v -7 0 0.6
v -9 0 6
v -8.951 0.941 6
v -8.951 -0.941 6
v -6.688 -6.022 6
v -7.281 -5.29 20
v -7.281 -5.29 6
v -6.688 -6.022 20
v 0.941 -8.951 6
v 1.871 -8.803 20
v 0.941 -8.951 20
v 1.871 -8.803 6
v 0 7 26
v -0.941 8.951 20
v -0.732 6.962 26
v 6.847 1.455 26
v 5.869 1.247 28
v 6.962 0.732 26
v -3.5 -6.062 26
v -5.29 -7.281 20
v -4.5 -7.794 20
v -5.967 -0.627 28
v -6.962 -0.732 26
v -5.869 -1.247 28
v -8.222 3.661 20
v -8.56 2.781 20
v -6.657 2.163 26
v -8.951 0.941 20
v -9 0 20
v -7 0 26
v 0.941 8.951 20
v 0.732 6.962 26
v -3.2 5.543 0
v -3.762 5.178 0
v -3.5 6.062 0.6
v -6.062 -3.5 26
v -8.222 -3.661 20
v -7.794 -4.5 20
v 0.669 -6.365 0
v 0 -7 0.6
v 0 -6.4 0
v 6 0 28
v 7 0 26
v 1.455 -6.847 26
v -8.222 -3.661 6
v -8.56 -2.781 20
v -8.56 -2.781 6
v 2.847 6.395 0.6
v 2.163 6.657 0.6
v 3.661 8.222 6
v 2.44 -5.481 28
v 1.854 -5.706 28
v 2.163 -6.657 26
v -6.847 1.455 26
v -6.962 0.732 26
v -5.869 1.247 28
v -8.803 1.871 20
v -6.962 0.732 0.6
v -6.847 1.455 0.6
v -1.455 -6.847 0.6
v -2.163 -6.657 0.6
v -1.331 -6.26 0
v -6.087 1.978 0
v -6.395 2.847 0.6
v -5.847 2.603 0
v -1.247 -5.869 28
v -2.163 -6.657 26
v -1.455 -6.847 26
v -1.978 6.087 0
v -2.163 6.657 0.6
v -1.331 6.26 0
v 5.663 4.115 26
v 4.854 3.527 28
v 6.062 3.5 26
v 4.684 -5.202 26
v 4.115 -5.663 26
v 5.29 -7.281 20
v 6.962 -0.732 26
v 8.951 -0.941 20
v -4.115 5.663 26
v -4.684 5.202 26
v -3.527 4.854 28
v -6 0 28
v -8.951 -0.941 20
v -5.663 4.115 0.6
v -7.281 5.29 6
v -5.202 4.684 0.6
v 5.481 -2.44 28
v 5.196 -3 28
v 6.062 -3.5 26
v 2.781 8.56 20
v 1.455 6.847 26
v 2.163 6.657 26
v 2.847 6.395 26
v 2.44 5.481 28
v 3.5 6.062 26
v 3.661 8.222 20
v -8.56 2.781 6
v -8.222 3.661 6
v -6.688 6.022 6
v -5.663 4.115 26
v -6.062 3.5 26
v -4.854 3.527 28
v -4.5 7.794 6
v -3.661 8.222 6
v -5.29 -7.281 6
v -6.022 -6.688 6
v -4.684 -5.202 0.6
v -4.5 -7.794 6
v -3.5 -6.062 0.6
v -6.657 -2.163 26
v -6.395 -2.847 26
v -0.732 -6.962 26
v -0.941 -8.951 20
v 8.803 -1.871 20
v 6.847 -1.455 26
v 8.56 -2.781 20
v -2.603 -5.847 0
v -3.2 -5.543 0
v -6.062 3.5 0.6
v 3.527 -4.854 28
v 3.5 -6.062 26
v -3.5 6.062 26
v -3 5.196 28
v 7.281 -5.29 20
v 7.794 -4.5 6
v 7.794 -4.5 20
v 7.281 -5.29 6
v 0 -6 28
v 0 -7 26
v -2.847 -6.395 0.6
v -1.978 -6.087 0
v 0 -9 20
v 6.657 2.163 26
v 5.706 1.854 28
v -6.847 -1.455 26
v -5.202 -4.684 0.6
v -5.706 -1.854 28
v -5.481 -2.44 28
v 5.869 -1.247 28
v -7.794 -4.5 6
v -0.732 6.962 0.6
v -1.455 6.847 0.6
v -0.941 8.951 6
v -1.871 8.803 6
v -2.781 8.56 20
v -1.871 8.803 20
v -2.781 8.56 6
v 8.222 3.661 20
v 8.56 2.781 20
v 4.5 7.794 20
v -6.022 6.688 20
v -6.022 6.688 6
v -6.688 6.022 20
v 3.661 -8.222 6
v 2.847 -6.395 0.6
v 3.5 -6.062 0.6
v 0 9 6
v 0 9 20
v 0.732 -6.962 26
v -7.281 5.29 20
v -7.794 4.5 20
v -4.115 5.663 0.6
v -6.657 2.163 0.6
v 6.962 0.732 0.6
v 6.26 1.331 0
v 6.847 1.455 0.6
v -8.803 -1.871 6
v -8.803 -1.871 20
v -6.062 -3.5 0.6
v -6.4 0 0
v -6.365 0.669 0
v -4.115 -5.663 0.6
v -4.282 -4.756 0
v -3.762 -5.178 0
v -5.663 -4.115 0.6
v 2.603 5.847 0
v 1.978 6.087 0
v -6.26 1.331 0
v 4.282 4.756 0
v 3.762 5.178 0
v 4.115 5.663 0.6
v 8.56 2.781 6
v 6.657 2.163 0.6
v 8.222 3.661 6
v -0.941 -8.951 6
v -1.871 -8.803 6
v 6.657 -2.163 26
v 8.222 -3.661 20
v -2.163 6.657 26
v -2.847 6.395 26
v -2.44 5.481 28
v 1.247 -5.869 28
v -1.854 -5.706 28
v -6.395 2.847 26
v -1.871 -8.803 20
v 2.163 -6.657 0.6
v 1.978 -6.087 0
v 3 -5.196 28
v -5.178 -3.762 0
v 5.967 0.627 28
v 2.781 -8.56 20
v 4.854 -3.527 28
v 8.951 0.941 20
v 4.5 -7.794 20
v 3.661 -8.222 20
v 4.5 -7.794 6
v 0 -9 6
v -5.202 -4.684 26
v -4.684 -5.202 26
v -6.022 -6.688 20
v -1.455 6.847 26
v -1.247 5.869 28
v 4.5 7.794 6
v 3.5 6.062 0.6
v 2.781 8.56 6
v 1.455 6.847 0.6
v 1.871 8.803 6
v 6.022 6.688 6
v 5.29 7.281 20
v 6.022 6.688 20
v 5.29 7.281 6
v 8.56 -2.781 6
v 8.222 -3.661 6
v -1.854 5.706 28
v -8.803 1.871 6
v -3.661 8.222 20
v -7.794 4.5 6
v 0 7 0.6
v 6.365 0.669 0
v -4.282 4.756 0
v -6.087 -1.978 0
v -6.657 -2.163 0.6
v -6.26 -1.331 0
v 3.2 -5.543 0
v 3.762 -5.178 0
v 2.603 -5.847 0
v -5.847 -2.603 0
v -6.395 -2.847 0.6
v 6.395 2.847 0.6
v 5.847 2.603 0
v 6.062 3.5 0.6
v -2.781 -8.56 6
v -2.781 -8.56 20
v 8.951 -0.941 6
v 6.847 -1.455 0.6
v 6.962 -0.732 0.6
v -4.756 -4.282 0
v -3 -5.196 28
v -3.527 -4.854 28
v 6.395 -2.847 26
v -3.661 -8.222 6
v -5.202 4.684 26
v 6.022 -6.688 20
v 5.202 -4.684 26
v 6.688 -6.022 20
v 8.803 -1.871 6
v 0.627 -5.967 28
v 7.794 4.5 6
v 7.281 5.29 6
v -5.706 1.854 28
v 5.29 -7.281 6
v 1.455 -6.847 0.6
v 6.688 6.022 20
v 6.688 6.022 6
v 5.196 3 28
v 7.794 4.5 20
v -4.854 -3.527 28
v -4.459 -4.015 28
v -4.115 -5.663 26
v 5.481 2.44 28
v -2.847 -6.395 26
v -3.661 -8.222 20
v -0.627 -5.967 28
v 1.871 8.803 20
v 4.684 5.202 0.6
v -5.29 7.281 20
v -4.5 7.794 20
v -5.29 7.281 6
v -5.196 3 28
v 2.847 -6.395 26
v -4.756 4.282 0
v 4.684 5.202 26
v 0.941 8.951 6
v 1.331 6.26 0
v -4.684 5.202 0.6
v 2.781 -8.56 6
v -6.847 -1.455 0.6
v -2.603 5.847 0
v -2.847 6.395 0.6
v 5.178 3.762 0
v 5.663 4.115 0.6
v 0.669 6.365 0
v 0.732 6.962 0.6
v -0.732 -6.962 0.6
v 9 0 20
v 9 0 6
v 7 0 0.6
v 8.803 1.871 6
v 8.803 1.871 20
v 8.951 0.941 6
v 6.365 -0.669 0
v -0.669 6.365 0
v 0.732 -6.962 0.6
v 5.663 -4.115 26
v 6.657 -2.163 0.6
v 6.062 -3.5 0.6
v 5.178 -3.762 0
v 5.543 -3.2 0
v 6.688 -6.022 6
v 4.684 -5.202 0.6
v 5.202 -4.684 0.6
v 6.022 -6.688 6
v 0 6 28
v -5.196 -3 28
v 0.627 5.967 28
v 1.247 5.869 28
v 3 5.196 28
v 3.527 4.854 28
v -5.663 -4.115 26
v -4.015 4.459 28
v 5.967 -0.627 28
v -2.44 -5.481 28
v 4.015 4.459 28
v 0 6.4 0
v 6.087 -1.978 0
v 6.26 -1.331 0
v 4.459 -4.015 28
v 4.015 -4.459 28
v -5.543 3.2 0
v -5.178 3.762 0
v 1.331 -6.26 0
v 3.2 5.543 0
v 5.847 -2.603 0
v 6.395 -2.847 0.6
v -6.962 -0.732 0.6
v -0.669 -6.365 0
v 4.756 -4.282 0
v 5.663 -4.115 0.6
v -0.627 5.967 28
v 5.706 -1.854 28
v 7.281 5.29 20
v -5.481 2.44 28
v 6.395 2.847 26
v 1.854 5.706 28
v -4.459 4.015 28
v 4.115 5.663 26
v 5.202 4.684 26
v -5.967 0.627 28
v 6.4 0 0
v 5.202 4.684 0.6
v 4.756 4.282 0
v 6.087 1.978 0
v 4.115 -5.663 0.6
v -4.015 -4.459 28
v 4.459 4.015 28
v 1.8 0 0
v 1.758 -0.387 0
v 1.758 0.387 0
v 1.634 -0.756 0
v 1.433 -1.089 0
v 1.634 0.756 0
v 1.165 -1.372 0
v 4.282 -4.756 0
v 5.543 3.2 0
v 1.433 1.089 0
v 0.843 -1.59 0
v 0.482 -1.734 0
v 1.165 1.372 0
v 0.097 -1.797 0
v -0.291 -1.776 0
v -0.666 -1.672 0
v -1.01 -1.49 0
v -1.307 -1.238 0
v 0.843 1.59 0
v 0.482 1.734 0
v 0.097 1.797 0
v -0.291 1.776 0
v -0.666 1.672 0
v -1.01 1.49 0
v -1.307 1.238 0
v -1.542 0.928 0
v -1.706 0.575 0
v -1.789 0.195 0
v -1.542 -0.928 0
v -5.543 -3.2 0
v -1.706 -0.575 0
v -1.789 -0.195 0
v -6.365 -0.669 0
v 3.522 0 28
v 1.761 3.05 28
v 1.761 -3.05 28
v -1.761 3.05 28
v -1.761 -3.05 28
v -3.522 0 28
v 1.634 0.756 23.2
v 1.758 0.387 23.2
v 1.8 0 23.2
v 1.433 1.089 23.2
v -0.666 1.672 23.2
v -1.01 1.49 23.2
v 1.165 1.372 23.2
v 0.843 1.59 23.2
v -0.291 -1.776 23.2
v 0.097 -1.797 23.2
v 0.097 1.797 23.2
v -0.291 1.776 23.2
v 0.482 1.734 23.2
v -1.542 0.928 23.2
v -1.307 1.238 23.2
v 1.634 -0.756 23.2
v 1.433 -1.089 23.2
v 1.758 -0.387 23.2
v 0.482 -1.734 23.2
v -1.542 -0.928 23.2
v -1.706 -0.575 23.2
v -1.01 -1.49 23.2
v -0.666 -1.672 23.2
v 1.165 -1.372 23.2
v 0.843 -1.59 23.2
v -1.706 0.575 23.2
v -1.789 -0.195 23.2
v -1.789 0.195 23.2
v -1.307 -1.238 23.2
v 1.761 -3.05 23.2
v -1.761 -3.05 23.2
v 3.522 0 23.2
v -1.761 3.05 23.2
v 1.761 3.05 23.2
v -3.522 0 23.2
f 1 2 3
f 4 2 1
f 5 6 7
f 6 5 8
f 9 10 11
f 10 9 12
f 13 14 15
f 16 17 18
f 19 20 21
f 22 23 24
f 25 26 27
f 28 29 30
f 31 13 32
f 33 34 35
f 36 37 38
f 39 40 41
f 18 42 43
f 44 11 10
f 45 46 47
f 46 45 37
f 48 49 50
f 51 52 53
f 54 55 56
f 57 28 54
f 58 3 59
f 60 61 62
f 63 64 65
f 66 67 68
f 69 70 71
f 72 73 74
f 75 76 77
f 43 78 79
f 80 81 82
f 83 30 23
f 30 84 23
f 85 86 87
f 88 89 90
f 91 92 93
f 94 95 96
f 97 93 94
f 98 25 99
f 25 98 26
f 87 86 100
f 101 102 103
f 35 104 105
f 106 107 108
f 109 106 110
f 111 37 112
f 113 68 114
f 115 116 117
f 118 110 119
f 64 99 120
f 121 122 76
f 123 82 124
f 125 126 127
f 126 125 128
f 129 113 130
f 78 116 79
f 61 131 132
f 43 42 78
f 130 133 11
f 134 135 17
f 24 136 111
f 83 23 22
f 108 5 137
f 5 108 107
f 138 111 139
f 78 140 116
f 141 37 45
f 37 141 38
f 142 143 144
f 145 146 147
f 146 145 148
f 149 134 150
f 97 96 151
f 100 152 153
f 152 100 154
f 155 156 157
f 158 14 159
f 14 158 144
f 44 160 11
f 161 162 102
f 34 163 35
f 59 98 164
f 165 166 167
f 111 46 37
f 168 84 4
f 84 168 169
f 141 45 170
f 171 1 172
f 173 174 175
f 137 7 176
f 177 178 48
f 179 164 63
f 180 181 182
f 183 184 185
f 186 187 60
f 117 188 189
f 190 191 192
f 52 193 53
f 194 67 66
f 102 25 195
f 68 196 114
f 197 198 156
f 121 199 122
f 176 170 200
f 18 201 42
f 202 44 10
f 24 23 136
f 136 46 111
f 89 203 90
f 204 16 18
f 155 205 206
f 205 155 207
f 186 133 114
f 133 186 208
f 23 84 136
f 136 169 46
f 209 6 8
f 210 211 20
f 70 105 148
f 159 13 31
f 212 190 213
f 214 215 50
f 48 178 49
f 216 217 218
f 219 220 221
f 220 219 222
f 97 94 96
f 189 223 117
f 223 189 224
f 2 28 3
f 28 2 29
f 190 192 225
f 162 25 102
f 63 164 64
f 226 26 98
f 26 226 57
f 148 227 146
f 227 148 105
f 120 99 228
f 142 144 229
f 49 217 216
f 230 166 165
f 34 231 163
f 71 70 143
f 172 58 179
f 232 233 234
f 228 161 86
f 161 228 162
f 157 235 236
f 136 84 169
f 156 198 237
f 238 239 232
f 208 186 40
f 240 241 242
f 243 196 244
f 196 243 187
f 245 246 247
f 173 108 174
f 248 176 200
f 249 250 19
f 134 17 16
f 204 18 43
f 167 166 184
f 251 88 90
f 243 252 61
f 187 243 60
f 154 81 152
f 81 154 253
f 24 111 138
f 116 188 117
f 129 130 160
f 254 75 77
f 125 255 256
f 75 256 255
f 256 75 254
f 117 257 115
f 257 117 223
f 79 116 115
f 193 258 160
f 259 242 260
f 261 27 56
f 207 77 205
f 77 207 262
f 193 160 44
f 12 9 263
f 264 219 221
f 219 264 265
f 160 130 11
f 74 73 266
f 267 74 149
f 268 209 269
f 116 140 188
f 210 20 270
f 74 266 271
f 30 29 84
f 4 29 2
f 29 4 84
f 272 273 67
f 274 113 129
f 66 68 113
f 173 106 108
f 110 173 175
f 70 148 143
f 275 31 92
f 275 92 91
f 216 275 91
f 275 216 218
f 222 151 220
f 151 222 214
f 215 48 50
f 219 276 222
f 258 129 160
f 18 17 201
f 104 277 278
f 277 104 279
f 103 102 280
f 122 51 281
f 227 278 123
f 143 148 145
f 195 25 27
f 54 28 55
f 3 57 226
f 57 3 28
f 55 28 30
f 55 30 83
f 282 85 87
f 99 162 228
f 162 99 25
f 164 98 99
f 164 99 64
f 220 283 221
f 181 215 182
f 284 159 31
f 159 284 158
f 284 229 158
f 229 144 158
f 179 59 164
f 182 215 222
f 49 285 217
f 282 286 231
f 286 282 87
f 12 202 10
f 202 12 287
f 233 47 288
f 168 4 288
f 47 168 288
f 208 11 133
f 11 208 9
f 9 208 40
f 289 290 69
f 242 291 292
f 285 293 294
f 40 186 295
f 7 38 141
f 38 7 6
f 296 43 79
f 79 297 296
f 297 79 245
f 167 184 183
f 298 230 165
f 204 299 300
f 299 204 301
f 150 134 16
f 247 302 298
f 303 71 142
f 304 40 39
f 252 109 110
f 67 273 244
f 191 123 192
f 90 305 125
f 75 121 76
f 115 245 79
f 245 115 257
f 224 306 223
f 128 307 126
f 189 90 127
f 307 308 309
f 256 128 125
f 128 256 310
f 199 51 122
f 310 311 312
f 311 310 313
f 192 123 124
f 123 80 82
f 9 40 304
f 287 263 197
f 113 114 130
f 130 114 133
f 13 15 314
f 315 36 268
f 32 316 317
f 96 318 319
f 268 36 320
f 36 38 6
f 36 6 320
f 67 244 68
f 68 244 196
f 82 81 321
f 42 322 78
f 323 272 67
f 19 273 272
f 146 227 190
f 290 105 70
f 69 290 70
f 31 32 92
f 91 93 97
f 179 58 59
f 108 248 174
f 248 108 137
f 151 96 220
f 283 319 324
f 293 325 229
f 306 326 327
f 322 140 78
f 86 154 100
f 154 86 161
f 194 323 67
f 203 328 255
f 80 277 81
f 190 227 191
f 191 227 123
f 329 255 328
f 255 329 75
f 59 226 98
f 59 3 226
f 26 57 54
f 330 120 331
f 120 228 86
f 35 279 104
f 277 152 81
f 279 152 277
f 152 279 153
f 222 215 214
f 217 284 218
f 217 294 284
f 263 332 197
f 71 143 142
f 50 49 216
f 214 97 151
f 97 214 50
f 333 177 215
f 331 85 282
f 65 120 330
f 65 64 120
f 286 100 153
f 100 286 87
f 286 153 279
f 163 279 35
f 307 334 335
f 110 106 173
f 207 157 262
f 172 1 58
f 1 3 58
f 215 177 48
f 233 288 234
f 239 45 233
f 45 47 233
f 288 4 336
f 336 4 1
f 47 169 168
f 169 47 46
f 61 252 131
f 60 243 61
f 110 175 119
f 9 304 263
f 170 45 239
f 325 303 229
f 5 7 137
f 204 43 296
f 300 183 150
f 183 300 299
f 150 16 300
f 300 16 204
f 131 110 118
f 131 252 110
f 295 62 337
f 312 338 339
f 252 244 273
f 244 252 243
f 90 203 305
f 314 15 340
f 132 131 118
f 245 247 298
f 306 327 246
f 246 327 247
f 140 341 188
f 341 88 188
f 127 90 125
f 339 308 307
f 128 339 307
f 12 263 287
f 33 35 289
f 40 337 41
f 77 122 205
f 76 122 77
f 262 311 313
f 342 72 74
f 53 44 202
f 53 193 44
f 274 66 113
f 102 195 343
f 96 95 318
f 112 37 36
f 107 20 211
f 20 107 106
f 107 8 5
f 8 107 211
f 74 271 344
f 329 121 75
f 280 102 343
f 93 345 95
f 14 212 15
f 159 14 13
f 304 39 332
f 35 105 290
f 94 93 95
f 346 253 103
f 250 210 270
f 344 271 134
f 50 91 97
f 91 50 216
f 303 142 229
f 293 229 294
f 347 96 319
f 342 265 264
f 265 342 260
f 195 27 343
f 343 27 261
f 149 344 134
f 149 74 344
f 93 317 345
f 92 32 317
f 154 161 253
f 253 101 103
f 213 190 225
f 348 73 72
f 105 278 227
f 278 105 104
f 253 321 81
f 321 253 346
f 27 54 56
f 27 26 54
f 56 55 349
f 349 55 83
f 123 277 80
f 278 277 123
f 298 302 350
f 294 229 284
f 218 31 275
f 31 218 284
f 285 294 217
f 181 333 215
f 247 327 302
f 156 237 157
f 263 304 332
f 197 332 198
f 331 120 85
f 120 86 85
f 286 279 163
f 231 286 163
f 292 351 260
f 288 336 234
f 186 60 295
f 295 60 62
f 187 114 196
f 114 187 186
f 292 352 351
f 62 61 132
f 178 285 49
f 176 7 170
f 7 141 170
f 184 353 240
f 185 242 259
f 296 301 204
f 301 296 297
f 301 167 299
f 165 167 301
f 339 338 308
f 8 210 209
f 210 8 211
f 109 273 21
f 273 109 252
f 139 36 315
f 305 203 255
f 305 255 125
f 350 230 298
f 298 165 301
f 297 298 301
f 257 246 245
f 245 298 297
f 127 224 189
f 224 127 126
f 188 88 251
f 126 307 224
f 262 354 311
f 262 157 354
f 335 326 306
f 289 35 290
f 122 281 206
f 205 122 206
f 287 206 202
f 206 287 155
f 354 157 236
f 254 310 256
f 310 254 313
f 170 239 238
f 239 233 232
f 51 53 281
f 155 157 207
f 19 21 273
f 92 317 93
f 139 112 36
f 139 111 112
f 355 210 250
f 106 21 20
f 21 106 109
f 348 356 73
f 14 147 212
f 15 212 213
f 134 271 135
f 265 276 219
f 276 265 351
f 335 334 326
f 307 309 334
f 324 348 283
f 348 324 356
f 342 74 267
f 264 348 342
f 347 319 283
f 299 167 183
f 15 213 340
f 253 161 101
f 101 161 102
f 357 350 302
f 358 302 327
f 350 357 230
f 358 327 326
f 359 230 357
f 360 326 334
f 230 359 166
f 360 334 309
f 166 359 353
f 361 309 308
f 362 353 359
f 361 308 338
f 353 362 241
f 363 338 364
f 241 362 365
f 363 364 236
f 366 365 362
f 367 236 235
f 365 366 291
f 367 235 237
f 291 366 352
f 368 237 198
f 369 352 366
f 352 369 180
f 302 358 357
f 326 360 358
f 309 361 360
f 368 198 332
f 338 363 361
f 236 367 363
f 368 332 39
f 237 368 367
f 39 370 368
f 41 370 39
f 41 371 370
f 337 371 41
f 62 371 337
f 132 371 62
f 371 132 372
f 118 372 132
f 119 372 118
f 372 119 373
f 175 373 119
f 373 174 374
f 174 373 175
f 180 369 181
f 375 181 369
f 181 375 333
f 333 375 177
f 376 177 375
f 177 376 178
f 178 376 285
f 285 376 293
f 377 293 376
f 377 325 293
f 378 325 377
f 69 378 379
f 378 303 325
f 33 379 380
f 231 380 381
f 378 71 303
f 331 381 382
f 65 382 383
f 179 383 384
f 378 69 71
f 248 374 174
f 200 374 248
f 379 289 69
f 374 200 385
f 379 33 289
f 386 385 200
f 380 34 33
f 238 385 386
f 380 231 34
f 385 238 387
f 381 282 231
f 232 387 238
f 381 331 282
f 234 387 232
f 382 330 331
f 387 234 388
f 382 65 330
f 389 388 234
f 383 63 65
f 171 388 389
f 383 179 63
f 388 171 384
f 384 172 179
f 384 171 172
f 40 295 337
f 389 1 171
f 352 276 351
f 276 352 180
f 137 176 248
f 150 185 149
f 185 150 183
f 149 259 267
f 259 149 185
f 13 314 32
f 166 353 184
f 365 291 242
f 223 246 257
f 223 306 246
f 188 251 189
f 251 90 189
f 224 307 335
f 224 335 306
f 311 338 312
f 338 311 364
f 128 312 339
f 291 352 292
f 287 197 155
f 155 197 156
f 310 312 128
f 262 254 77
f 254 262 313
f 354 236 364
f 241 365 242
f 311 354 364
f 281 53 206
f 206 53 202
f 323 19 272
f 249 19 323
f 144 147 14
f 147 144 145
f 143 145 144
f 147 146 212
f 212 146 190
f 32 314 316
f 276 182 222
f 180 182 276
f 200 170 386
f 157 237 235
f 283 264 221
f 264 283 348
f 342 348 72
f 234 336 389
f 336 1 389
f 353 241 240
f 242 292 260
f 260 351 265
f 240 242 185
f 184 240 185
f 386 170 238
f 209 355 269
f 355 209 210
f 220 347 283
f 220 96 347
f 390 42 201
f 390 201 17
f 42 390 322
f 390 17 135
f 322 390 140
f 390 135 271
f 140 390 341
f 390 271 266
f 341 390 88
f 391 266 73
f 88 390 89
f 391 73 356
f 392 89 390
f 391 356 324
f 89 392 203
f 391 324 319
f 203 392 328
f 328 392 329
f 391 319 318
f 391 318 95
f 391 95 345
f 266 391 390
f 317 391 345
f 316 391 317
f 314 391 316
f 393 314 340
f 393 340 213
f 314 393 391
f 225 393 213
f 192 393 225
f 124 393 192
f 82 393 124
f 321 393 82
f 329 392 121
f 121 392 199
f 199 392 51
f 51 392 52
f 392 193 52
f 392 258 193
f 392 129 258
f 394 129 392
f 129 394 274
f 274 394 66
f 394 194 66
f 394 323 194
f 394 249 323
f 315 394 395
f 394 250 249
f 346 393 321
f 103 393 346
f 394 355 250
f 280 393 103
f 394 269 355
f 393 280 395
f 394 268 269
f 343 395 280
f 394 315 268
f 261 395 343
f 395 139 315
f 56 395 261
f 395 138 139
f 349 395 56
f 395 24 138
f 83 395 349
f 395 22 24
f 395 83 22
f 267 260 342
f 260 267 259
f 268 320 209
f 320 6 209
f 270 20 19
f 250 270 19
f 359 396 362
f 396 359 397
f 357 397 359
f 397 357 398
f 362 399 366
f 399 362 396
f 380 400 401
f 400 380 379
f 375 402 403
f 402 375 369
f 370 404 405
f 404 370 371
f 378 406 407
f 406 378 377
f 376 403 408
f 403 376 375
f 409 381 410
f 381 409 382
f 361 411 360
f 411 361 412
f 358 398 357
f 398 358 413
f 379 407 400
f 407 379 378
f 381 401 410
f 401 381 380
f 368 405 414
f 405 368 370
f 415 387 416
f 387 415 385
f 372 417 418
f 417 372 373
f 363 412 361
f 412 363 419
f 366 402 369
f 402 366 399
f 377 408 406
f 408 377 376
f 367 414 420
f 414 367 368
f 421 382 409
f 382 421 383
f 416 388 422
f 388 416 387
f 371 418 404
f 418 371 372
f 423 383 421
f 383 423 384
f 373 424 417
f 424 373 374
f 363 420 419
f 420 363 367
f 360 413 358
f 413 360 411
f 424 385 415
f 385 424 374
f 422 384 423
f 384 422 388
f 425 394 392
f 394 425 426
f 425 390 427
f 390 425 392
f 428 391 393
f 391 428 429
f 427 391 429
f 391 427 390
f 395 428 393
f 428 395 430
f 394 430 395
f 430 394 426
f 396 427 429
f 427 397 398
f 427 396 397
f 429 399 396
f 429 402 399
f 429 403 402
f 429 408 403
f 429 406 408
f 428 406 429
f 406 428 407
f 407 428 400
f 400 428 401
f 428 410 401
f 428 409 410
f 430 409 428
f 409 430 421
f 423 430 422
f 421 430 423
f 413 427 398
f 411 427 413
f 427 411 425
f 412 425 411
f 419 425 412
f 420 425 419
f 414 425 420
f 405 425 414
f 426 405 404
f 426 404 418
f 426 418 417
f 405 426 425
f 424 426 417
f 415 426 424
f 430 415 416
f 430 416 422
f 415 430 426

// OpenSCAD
// file: ../../COMMON/stem_core.scad
// =====================================================================
//  stem_core.scad — shared geometry helpers for every STEM_KIT part.
// =====================================================================
include <../PARAMETERS/config.scad>
// =====================================================================

// ---------- rounded / chamfered prisms --------------------------------

// Rounded rectangle (2D), centred.
module rrect(size, r) {
    rr = min(r, min(size[0], size[1]) / 2 - 0.01);
    offset(r = rr) square([size[0] - 2 * rr, size[1] - 2 * rr], center = true);
}

// Box with rounded vertical edges, chamfered bottom edge (elephant-foot
// relief) and rounded-ish (chamfered) top edge. Sits on z = 0, centred XY.
module rbox(size, r = 2, top = edge_r, bottom = chamfer) {
    h = size[2];
    hull() {
        linear_extrude(0.01) rrect([size[0] - 2 * bottom, size[1] - 2 * bottom], max(r - bottom, 0.1));
        translate([0, 0, bottom]) linear_extrude(h - bottom - top) rrect([size[0], size[1]], r);
        translate([0, 0, h - 0.01]) linear_extrude(0.01) rrect([size[0] - 2 * top, size[1] - 2 * top], max(r - top, 0.1));
    }
}

// Cylinder with chamfered/rounded top and bottom edges (safe hubs, knobs).
module rcyl(d, h, top = edge_r, bottom = chamfer) {
    rotate_extrude() polygon([
        [0, 0], [d / 2 - bottom, 0], [d / 2, bottom],
        [d / 2, h - top], [d / 2 - top, h], [0, h]
    ]);
}

// Stadium (slot / rounded bar) 2D between two points on the X axis.
module stadium2d(len, w) {
    hull() { circle(d = w); translate([len, 0]) circle(d = w); }
}

// ---------- holes ------------------------------------------------------

// Vertical through hole with small top/bottom chamfers.
module vhole(d = grid_hole_d, h = 50, ch = 0.4) {
    translate([0, 0, -h / 2]) cylinder(d = d, h = h);
}

// Horizontal hole along +Y, printable without supports (teardrop tip up).
module teardrop_y(d, len, center = true) {
    translate([0, center ? -len / 2 : 0, 0]) rotate([-90, 0, 0])
        linear_extrude(len) teardrop2d(d);
}
module teardrop_x(d, len, center = true) {
    translate([center ? -len / 2 : 0, 0, 0]) rotate([0, 90, 0]) rotate([0, 0, -90])
        linear_extrude(len) teardrop2d(d);
}
// 2D teardrop: circle + 45° roof pointing "up" in the final part (+Z).
// After rotate([-90,0,0]) local +Y becomes -Z, so the roof points to -Y here.
module teardrop2d(d) {
    r = d / 2;
    union() {
        circle(d = d);
        polygon([[-r * sqrt(2) / 2, -r * sqrt(2) / 2], [0, -r * sqrt(2)], [r * sqrt(2) / 2, -r * sqrt(2) / 2]]);
    }
}

// Hex nut pocket (flat sides parallel to X), opening at z = 0 going +Z.
module nut_pocket(depth = nut_pocket_depth, af = nut_pocket_af) {
    cylinder(d = af / cos(30), h = depth, $fn = 6);
}

// Side-entry nut slot: nut plane is XY, slot opens toward +dir (X).
// Centred on the screw axis (Z), slot height nut_slot_t, runs out `len`.
module nut_slot_x(len = 10, af = nut_pocket_af, t = nut_slot_t) {
    translate([0, 0, -t / 2]) hull() {
        cylinder(d = af / cos(30), h = t, $fn = 6);
        translate([len, 0, 0]) cylinder(d = af / cos(30), h = t, $fn = 6);
    }
}

// Counterbored clearance hole from top surface at height `top` downward.
module cbore(top, depth, d = counterbore_d) {
    translate([0, 0, top - depth]) cylinder(d = d, h = depth + 20);
    translate([0, 0, -20]) cylinder(d = grid_hole_d, h = top + 40);
}

// Grid of vertical holes: nx x ny, pitch grid_pitch, first hole centred
// at `origin` (XY). Used by every plate.
module grid_holes(nx, ny, origin = [0, 0], h = 100, d = grid_hole_d) {
    for (i = [0 : nx - 1], j = [0 : ny - 1])
        translate([origin[0] + i * grid_pitch, origin[1] + j * grid_pitch, 0]) vhole(d, h);
}

// Slot (for adjustable mounting) along X, length = travel.
module slot_x(travel, d = grid_hole_d, h = 100) {
    translate([-travel / 2, 0, -h / 2]) linear_extrude(h) stadium2d(travel, d);
}

// ---------- shaft bores ------------------------------------------------

// 2D bore profile: round, or D if shaft_flat > 0.
module bore2d(d) {
    if (shaft_flat > 0)
        intersection() { circle(d = d); translate([-d, -d / 2]) square([2 * d, d - shaft_flat + (d - shaft_diameter) / 2]); }
    else circle(d = d);
}

// Standard HUB: cylinder hub_d x hub_h standing on z = z0, with bore,
// radial M3 set screw at mid height and a captive-nut slot from the top.
// Call inside difference() for the cut-outs: hub_body()/hub_cuts().
module hub_body(z0, d = hub_d, h = hub_h) {
    translate([0, 0, z0]) rcyl(d, h, top = 0.8, bottom = 0);
}
module hub_cuts(z0, total_h, d = hub_d, h = hub_h, bore = shaft_fixed_bore, set_screw = true, screw_angle = 0) {
    // bore through everything
    translate([0, 0, -1]) linear_extrude(total_h + 2) bore2d(bore);
    // entry chamfer on bore
    translate([0, 0, total_h - 0.6]) cylinder(d1 = bore, d2 = bore + 1.2, h = 0.61);
    translate([0, 0, -0.01]) cylinder(d1 = bore + 1.2, d2 = bore, h = 0.6);
    if (set_screw) rotate([0, 0, screw_angle]) {
        zs = z0 + h / 2;
        // radial screw hole (teardrop, prints without support)
        translate([0, 0, zs]) teardrop_x(screw_clear_d, d, center = false);
        // captive nut slot, entered from the hub top face
        nr = bore / 2 + (d / 2 - bore / 2) / 2;       // radial position of nut
        translate([nr - nut_slot_t / 2, -nut_pocket_af / 2, zs - nut_pocket_af / cos(30) / 2 - 0.1])
            cube([nut_slot_t, nut_pocket_af, total_h + 10]);   // open to the hub top face
    }
}

// ---------- labels -----------------------------------------------------

// Engrave text into a top surface at height z (depth 0.6 = 3 layers).
module engrave(txt, size = 5, z = 0, depth = 0.6, halign = "center") {
    translate([0, 0, z - depth]) linear_extrude(depth + 1)
        text(txt, size = size, font = "Liberation Sans:style=Bold", halign = halign, valign = "center");
}

// ---------- misc -------------------------------------------------------

function grid_snap(v) = ceil(v / grid_pitch) * grid_pitch;
// file: ../../PARAMETERS/config.scad
// =====================================================================
//  STEM_KIT — CENTRAL PARAMETER FILE  ("ForgeGrid" mechanical standard)
// ---------------------------------------------------------------------
//  Every part in the library includes this file. Change a value here,
//  run `python3 tools/build.py`, and the whole library regenerates.
//  All dimensions in millimetres.
// =====================================================================

// ---------------------------------------------------------------------
// 1. PRINTER / PROCESS
// ---------------------------------------------------------------------
nozzle          = 0.4;
layer_height    = 0.2;
tolerance       = 0.2;    // sliding clearance per side (tune with STEM_TOLERANCE_TEST)
press_allow     = 0.05;   // extra for press fits (bores that should grip)
min_wall        = 1.6;    // never go below this
wall_thickness  = 2.4;    // preferred wall (6 perimeters @ 0.4)
edge_r          = 1.0;    // rounding of exposed edges (child safety)
chamfer         = 0.6;    // bottom-edge chamfer (elephant-foot relief)

$fa = 6;                  // facet angle
$fs = 0.4;                // facet size

// ---------------------------------------------------------------------
// 2. GRID  (the heart of the ecosystem)
// ---------------------------------------------------------------------
//  Holes sit on a 10 mm lattice, 5 mm in from every plate edge, so
//  plates placed side by side keep one continuous lattice.
grid_pitch            = 10;
plate_size            = 100;   // universal base plate (square)
plate_thickness       = 6;     // base plates, rails, chassis
foot_thickness        = 4;     // flange / foot of every mount
//  => standard joint: 4 mm foot + 6 mm plate = M3 x 10 screw, nut in
//     the hex pocket under the plate. One screw length does 90 % of joints.

// ---------------------------------------------------------------------
// 3. FASTENERS (M3 everywhere: one screwdriver, one nut)
// ---------------------------------------------------------------------
screw_size            = 3;
screw_clear_d         = 3.4;   // clearance hole (also the grid hole)
grid_hole_d           = screw_clear_d;
screw_tap_d           = 2.6;   // hole a screw self-taps into
screw_head_d          = 5.7;   // ISO 7380 BUTTON head = kit standard (low, rounded, child-safe)
screw_head_h          = 1.65;
counterbore_d         = 6.4;
nut_af                = 5.5;   // M3 nut across flats
nut_thick             = 2.4;
nut_pocket_af         = nut_af + 0.35;
nut_pocket_depth      = 3.0;   // pocket under plates (nut sits flush)
nut_slot_t            = nut_thick + 0.4;  // side-entry slot thickness
set_screw_len         = 6;     // M3 x 6 grub screw for hubs

// ---------------------------------------------------------------------
// 4. SHAFTS
// ---------------------------------------------------------------------
//  Default: 3 mm steel rod (silver steel / stainless). Printed shafts
//  are provided for light-duty use. Alternative systems: set
//  shaft_diameter = 4 or 5 and rebuild.
shaft_diameter        = 3;
shaft_flat            = 0;     // >0 : D-shaft, flat depth (e.g. 0.5)
shaft_fixed_bore      = shaft_diameter + 0.15;  // hub bore (set-screw locked)
shaft_free_bore       = shaft_diameter + 0.4;   // free-spinning bore / bushing
shaft_lengths         = [40, 60, 80, 100, 120];

//  Horizontal shafts: all pillow blocks, motor mounts and axle mounts
//  put their axis at this height above the surface they are bolted to,
//  so any two of them on the grid are automatically coaxial/parallel.
axis_height           = 17;
axis_height_high      = 37;    // = axis_height + 2 pitches (pulleys, big wheels)

// ---------------------------------------------------------------------
// 5. BEARINGS
// ---------------------------------------------------------------------
bearing_size          = [5, 16, 5];   // 625 : bore, OD, width (default housing)
bearing_small         = [3, 10, 4];   // 623 : fits 3 mm shafts via adapter ring
bearing_pocket_d      = bearing_size[1] + 0.15;

// ---------------------------------------------------------------------
// 6. GEARS
// ---------------------------------------------------------------------
//  Module 2 + tooth counts that are multiples of 10  =>  centre distance
//  = (z1+z2) mm is ALWAYS a multiple of 10  =>  ANY two gears mesh when
//  their shafts sit in grid holes. (3-4-5 diagonals also work: 50 mm.)
gear_module           = 2;
gear_pressure_angle   = 20;
gear_width            = 6;
gear_backlash         = 0.30;  // total circular backlash per mesh
gear_clearance_k      = 0.25;  // root clearance = k * module
gear_teeth_set        = [10, 20, 30, 40];
//  Gearbox frame: two frame plates, outer faces 60 mm apart (on grid),
//  48 mm gap = three gear levels (A, M, B).
frame_gap             = 48;
hub_d                 = 14;
hub_h                 = 7;

// ---------------------------------------------------------------------
// 7. WHEELS / PULLEYS
// ---------------------------------------------------------------------
wheel_diameter        = 60;
wheel_width           = 10;
axle_diameter         = shaft_diameter;
oring_cs              = 3.0;    // O-ring cross-section used as tyre / belt
belt_cs               = 2.5;    // O-ring / round-belt cord for pulleys
pulley_sizes          = [20, 40, 60];  // effective (belt-line) diameters

// ---------------------------------------------------------------------
// 8. MOTORS (130-size toy / solar motor is the default)
// ---------------------------------------------------------------------
motor_size            = [20.2, 15.2, 25.2]; // body dia, across-flats, length
motor_d               = motor_size[0];
motor_flat            = motor_size[1];
motor_len             = motor_size[2];
motor_boss_d          = 6.2;
motor_boss_h          = 1.6;
motor_shaft_d         = 2.0;
motor_shaft_len       = 8.5;   // beyond boss
motor_shaft_bore      = 1.9;   // press fit onto 2 mm motor shaft

// ---------------------------------------------------------------------
// 9. SOLAR PANEL (bought, not printed) — frame is parametric
// ---------------------------------------------------------------------
solar_panel_size      = [110, 69, 3.0];  // 5 V 1 W epoxy panel (common)
solar_panel_clear     = 0.6;

// ---------------------------------------------------------------------
// 10. ELECTRONICS
// ---------------------------------------------------------------------
mounting_hole_spacing = grid_pitch;   // everything bolts to the grid
electronics_slot_w    = screw_clear_d;
led_hole_d            = 5.1;
buzzer_hole_d         = 12.2;

// ---------------------------------------------------------------------
// 11. SAFETY LIMITS (checked by tools/qc.py)
// ---------------------------------------------------------------------
max_part_voltage      = 12;    // nothing in this kit uses more
min_rim_thickness     = 2.0;   // blades/links: no edge thinner than this
finger_gap_max        = 6;     // guard openings smaller than a child's finger
// main file
// =====================================================================
//  PART: crank knob — DYNAMO/hand_generator
//  Free-spinning handle: slides over an M3 x 40 screw that is locked to
//  the crank arm; an M3 nylock nut (hidden in the top recess) keeps it
//  on without clamping it, so it turns in the child's hand (no skin
//  friction). Shared by the hand generator and the linkage lab.
//  Print: standing, recess up. No supports.
// =====================================================================
include <../../PARAMETERS/config.scad>
use <../../COMMON/stem_core.scad>

knob_len = 28;
crank_knob(knob_len);

module crank_knob(L = 28, d = 18) {
    r = d / 2;
    difference() {
        rotate_extrude() polygon([[0, 0], [r - 2.6, 0], [r - 2, 0.6], [r, 6], [r, L - 8], [r - 2, L - 2], [r - 3, L], [0, L]]);
        vhole(shaft_free_bore + 0.2, 3 * L);
        // nylock recess (nylock M3 is 4 mm tall)
        translate([0, 0, L - 4.8]) cylinder(d = (nut_af + 0.6) / cos(30), h = 10, $fn = 6);
    }
}
